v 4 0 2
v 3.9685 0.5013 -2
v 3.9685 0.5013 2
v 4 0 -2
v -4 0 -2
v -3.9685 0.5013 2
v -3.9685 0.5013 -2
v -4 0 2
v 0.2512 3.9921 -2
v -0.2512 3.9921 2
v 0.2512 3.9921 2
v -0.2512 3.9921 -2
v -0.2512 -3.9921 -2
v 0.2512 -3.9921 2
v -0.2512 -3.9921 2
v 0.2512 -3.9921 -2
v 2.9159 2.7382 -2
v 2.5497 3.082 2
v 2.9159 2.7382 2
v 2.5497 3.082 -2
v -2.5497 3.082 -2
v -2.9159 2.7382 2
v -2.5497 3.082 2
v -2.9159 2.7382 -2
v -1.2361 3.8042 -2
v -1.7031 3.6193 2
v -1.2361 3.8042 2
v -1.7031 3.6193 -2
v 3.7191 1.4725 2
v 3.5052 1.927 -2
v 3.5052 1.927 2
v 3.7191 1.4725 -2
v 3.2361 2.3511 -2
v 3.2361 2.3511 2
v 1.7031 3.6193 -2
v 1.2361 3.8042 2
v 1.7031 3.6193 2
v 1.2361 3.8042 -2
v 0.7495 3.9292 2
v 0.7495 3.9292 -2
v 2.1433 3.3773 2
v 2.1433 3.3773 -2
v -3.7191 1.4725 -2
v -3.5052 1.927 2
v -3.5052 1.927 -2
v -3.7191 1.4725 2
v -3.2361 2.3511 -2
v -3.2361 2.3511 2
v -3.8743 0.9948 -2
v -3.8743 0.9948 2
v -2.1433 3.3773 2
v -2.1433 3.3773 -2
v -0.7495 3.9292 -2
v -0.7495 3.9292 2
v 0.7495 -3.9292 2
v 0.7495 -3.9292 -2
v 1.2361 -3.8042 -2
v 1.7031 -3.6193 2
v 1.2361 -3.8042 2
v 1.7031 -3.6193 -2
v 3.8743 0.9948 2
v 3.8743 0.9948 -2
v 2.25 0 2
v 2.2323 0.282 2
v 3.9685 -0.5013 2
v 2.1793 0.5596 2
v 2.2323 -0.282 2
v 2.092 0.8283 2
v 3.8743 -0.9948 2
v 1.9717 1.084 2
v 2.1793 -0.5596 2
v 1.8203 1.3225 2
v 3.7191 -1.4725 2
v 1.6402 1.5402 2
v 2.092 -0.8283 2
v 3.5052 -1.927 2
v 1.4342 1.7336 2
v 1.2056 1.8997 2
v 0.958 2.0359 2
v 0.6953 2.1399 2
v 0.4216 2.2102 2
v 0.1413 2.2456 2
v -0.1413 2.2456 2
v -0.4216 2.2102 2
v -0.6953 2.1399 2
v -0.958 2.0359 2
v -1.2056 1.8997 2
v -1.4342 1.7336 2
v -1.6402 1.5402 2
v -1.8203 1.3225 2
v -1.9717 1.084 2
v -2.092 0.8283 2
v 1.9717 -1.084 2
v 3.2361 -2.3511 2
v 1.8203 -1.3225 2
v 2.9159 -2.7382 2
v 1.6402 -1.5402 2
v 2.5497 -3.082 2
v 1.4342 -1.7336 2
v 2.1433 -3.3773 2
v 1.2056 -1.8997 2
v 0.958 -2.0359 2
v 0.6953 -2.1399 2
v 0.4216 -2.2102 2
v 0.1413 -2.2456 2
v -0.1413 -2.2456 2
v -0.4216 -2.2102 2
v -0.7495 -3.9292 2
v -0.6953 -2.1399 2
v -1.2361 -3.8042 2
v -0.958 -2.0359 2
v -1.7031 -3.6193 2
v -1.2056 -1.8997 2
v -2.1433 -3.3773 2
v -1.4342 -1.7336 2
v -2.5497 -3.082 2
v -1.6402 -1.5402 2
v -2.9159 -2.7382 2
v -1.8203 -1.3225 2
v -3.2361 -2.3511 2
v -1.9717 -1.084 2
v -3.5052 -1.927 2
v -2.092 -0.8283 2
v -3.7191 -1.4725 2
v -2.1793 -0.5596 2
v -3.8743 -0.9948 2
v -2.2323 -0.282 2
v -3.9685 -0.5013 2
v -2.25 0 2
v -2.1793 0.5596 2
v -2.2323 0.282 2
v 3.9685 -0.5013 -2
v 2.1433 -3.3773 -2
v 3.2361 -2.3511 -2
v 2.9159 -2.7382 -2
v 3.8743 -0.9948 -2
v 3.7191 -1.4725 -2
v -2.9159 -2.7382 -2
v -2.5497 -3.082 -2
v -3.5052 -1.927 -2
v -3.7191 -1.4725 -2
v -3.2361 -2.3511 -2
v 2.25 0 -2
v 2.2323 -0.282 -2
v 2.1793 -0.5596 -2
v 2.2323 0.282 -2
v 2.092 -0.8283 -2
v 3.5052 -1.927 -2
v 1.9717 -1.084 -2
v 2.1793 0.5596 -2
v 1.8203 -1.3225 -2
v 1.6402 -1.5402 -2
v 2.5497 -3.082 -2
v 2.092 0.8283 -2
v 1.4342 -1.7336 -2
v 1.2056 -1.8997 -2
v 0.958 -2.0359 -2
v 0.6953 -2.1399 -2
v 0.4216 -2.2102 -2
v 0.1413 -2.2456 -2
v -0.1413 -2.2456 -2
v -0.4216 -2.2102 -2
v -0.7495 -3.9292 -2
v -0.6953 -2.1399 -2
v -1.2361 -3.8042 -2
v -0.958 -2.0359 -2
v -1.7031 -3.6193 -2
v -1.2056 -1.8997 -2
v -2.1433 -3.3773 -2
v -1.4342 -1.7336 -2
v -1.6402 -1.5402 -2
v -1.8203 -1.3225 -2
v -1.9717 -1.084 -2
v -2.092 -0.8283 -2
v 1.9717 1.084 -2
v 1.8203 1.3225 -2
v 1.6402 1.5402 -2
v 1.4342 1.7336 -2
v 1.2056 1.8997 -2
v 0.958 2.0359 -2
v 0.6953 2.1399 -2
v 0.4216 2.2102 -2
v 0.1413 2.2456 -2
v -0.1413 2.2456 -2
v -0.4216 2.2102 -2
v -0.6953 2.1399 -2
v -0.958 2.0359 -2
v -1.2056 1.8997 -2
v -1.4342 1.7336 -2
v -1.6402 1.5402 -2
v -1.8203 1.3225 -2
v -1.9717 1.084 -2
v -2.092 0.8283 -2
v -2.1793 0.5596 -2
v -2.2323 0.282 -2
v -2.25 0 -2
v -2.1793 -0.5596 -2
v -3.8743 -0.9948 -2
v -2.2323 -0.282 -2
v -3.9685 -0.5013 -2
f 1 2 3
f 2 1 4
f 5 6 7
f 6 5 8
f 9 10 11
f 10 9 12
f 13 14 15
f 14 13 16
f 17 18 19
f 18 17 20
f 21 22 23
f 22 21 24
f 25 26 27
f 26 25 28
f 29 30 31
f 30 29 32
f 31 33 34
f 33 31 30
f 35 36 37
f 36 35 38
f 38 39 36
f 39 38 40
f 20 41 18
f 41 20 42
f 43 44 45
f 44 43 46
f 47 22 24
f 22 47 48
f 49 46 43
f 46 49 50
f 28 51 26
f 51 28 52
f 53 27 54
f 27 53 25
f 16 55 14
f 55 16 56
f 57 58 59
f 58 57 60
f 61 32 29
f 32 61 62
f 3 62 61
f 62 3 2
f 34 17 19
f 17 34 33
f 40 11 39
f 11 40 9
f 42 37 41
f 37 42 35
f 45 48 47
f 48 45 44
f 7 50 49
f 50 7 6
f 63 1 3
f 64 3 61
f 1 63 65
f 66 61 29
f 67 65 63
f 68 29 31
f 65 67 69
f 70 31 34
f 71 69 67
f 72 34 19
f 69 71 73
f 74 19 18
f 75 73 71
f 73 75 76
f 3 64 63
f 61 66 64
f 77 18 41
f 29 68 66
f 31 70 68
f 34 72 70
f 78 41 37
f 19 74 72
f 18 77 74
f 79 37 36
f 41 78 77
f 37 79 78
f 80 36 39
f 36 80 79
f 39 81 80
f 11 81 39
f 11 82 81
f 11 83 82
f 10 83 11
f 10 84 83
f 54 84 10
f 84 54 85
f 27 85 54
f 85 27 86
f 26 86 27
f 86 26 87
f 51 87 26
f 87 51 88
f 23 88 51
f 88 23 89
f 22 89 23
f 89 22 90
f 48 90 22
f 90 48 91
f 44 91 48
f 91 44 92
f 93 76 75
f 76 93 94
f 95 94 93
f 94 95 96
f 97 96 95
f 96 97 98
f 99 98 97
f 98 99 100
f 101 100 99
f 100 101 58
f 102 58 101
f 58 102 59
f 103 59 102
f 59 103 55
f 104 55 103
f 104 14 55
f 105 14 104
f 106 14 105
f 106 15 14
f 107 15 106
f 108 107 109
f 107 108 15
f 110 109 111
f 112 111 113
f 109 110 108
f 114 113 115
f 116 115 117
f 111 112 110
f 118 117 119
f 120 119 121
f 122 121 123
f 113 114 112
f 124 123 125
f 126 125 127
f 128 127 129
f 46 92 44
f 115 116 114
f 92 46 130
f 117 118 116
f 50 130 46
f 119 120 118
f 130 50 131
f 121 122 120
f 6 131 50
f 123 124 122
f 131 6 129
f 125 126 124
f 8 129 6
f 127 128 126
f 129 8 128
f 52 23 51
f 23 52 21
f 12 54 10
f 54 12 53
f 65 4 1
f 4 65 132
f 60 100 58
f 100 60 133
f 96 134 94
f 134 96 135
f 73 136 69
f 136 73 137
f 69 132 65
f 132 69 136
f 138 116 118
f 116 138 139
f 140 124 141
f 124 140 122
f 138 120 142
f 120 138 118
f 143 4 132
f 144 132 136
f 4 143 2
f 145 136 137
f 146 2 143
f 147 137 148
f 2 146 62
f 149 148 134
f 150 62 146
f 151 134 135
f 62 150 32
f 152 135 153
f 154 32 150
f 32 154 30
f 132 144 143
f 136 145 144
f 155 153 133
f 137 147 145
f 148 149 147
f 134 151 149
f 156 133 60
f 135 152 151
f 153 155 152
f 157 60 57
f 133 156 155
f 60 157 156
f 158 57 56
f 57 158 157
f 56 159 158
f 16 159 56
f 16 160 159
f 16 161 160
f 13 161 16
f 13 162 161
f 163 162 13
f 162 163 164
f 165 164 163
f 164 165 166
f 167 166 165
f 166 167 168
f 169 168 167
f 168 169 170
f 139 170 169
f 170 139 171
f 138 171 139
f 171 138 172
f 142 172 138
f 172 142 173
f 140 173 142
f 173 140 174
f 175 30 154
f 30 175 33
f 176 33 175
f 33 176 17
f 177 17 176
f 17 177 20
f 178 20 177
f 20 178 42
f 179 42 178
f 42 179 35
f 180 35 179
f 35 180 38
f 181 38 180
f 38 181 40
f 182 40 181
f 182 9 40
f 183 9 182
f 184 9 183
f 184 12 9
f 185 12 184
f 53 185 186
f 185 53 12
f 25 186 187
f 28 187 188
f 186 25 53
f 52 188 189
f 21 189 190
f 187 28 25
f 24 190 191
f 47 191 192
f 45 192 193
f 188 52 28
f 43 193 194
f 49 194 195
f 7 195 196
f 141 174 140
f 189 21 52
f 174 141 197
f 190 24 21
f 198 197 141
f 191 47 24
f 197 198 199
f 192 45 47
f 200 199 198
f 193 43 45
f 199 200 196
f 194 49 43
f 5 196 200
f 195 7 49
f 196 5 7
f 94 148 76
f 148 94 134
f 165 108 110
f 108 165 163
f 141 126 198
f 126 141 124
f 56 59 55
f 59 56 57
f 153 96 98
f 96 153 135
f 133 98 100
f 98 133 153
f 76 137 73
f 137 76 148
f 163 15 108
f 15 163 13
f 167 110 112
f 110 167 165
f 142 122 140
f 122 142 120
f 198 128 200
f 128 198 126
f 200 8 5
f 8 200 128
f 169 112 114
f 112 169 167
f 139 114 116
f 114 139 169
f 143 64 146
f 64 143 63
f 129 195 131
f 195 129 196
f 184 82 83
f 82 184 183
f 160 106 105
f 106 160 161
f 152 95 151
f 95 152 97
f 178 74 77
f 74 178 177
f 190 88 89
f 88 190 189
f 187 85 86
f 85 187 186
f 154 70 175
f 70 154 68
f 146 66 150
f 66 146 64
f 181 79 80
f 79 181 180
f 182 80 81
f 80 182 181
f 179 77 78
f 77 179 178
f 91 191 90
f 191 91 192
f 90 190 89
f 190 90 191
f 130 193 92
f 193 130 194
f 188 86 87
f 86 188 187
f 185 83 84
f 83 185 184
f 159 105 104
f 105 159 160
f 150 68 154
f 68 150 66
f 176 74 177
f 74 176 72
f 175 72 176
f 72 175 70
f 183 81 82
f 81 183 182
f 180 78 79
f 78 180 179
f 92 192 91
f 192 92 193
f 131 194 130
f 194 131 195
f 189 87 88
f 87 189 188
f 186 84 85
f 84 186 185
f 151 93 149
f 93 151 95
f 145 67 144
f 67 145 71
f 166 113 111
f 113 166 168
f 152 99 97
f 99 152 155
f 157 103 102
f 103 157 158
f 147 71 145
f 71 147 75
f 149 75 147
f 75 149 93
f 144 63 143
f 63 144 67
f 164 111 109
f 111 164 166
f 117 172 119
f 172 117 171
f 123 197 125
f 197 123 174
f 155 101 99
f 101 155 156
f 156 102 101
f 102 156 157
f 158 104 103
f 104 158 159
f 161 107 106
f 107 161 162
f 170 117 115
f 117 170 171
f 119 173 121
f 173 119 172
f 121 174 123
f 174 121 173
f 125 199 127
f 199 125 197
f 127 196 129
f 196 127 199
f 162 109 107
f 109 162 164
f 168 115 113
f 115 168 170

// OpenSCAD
$fn = 50;


difference() {
	union() {
		translate(v = [0, 0, -2.0000000000]) {
			cylinder(h = 4, r = 4.0000000000);
		}
	}
	union() {
		translate(v = [0, 0, -100.0000000000]) {
			cylinder(h = 200, r = 2.2500000000);
		}
	}
}
